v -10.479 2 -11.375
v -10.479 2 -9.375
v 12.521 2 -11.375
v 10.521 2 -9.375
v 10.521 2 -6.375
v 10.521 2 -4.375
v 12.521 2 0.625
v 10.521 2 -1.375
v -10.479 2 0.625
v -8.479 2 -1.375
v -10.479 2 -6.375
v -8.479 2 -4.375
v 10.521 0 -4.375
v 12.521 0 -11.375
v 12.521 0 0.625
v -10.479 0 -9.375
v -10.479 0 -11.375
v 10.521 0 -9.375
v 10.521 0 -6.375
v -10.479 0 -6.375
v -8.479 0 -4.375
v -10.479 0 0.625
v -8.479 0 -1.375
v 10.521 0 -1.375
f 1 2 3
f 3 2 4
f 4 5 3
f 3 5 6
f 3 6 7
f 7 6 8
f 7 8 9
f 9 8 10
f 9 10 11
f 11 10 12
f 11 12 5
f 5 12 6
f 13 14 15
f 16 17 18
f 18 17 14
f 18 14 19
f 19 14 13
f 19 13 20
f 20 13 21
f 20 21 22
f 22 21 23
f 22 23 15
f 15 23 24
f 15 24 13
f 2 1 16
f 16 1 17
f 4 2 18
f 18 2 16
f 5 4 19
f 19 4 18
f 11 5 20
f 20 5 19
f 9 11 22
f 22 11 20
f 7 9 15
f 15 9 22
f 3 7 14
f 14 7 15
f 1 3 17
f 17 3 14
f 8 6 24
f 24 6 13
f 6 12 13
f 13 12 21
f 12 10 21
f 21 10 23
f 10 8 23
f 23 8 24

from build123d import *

# Parameters (mm, degrees)
ESBO_O1_W                = 19
ESBO_O1_H                = 3
RESSALTO_EXTRUS_O1_DEPTH = 2


with BuildPart() as part:
    # Esboço1 → Ressalto-extrusão1 (new body)
    with BuildSketch(Plane(origin=(0, 0, 0), x_dir=(1, 0, 0), z_dir=(0, 1, 0))):
        Polygon((-10.479474548, 11.375), (12.520525452, 11.375), (12.520525452, -0.625), (10.520525452, -0.625), (-10.479474548, -0.625), (-10.479474548, 6.375), (10.520525452, 6.375), (10.520525452, 9.375), (-10.479474548, 9.375), align=None)
        with Locations((1.020525452, 2.875)):
            Rectangle(ESBO_O1_W, ESBO_O1_H, mode=Mode.SUBTRACT)
    extrude(amount=RESSALTO_EXTRUS_O1_DEPTH)


solid = part.part
